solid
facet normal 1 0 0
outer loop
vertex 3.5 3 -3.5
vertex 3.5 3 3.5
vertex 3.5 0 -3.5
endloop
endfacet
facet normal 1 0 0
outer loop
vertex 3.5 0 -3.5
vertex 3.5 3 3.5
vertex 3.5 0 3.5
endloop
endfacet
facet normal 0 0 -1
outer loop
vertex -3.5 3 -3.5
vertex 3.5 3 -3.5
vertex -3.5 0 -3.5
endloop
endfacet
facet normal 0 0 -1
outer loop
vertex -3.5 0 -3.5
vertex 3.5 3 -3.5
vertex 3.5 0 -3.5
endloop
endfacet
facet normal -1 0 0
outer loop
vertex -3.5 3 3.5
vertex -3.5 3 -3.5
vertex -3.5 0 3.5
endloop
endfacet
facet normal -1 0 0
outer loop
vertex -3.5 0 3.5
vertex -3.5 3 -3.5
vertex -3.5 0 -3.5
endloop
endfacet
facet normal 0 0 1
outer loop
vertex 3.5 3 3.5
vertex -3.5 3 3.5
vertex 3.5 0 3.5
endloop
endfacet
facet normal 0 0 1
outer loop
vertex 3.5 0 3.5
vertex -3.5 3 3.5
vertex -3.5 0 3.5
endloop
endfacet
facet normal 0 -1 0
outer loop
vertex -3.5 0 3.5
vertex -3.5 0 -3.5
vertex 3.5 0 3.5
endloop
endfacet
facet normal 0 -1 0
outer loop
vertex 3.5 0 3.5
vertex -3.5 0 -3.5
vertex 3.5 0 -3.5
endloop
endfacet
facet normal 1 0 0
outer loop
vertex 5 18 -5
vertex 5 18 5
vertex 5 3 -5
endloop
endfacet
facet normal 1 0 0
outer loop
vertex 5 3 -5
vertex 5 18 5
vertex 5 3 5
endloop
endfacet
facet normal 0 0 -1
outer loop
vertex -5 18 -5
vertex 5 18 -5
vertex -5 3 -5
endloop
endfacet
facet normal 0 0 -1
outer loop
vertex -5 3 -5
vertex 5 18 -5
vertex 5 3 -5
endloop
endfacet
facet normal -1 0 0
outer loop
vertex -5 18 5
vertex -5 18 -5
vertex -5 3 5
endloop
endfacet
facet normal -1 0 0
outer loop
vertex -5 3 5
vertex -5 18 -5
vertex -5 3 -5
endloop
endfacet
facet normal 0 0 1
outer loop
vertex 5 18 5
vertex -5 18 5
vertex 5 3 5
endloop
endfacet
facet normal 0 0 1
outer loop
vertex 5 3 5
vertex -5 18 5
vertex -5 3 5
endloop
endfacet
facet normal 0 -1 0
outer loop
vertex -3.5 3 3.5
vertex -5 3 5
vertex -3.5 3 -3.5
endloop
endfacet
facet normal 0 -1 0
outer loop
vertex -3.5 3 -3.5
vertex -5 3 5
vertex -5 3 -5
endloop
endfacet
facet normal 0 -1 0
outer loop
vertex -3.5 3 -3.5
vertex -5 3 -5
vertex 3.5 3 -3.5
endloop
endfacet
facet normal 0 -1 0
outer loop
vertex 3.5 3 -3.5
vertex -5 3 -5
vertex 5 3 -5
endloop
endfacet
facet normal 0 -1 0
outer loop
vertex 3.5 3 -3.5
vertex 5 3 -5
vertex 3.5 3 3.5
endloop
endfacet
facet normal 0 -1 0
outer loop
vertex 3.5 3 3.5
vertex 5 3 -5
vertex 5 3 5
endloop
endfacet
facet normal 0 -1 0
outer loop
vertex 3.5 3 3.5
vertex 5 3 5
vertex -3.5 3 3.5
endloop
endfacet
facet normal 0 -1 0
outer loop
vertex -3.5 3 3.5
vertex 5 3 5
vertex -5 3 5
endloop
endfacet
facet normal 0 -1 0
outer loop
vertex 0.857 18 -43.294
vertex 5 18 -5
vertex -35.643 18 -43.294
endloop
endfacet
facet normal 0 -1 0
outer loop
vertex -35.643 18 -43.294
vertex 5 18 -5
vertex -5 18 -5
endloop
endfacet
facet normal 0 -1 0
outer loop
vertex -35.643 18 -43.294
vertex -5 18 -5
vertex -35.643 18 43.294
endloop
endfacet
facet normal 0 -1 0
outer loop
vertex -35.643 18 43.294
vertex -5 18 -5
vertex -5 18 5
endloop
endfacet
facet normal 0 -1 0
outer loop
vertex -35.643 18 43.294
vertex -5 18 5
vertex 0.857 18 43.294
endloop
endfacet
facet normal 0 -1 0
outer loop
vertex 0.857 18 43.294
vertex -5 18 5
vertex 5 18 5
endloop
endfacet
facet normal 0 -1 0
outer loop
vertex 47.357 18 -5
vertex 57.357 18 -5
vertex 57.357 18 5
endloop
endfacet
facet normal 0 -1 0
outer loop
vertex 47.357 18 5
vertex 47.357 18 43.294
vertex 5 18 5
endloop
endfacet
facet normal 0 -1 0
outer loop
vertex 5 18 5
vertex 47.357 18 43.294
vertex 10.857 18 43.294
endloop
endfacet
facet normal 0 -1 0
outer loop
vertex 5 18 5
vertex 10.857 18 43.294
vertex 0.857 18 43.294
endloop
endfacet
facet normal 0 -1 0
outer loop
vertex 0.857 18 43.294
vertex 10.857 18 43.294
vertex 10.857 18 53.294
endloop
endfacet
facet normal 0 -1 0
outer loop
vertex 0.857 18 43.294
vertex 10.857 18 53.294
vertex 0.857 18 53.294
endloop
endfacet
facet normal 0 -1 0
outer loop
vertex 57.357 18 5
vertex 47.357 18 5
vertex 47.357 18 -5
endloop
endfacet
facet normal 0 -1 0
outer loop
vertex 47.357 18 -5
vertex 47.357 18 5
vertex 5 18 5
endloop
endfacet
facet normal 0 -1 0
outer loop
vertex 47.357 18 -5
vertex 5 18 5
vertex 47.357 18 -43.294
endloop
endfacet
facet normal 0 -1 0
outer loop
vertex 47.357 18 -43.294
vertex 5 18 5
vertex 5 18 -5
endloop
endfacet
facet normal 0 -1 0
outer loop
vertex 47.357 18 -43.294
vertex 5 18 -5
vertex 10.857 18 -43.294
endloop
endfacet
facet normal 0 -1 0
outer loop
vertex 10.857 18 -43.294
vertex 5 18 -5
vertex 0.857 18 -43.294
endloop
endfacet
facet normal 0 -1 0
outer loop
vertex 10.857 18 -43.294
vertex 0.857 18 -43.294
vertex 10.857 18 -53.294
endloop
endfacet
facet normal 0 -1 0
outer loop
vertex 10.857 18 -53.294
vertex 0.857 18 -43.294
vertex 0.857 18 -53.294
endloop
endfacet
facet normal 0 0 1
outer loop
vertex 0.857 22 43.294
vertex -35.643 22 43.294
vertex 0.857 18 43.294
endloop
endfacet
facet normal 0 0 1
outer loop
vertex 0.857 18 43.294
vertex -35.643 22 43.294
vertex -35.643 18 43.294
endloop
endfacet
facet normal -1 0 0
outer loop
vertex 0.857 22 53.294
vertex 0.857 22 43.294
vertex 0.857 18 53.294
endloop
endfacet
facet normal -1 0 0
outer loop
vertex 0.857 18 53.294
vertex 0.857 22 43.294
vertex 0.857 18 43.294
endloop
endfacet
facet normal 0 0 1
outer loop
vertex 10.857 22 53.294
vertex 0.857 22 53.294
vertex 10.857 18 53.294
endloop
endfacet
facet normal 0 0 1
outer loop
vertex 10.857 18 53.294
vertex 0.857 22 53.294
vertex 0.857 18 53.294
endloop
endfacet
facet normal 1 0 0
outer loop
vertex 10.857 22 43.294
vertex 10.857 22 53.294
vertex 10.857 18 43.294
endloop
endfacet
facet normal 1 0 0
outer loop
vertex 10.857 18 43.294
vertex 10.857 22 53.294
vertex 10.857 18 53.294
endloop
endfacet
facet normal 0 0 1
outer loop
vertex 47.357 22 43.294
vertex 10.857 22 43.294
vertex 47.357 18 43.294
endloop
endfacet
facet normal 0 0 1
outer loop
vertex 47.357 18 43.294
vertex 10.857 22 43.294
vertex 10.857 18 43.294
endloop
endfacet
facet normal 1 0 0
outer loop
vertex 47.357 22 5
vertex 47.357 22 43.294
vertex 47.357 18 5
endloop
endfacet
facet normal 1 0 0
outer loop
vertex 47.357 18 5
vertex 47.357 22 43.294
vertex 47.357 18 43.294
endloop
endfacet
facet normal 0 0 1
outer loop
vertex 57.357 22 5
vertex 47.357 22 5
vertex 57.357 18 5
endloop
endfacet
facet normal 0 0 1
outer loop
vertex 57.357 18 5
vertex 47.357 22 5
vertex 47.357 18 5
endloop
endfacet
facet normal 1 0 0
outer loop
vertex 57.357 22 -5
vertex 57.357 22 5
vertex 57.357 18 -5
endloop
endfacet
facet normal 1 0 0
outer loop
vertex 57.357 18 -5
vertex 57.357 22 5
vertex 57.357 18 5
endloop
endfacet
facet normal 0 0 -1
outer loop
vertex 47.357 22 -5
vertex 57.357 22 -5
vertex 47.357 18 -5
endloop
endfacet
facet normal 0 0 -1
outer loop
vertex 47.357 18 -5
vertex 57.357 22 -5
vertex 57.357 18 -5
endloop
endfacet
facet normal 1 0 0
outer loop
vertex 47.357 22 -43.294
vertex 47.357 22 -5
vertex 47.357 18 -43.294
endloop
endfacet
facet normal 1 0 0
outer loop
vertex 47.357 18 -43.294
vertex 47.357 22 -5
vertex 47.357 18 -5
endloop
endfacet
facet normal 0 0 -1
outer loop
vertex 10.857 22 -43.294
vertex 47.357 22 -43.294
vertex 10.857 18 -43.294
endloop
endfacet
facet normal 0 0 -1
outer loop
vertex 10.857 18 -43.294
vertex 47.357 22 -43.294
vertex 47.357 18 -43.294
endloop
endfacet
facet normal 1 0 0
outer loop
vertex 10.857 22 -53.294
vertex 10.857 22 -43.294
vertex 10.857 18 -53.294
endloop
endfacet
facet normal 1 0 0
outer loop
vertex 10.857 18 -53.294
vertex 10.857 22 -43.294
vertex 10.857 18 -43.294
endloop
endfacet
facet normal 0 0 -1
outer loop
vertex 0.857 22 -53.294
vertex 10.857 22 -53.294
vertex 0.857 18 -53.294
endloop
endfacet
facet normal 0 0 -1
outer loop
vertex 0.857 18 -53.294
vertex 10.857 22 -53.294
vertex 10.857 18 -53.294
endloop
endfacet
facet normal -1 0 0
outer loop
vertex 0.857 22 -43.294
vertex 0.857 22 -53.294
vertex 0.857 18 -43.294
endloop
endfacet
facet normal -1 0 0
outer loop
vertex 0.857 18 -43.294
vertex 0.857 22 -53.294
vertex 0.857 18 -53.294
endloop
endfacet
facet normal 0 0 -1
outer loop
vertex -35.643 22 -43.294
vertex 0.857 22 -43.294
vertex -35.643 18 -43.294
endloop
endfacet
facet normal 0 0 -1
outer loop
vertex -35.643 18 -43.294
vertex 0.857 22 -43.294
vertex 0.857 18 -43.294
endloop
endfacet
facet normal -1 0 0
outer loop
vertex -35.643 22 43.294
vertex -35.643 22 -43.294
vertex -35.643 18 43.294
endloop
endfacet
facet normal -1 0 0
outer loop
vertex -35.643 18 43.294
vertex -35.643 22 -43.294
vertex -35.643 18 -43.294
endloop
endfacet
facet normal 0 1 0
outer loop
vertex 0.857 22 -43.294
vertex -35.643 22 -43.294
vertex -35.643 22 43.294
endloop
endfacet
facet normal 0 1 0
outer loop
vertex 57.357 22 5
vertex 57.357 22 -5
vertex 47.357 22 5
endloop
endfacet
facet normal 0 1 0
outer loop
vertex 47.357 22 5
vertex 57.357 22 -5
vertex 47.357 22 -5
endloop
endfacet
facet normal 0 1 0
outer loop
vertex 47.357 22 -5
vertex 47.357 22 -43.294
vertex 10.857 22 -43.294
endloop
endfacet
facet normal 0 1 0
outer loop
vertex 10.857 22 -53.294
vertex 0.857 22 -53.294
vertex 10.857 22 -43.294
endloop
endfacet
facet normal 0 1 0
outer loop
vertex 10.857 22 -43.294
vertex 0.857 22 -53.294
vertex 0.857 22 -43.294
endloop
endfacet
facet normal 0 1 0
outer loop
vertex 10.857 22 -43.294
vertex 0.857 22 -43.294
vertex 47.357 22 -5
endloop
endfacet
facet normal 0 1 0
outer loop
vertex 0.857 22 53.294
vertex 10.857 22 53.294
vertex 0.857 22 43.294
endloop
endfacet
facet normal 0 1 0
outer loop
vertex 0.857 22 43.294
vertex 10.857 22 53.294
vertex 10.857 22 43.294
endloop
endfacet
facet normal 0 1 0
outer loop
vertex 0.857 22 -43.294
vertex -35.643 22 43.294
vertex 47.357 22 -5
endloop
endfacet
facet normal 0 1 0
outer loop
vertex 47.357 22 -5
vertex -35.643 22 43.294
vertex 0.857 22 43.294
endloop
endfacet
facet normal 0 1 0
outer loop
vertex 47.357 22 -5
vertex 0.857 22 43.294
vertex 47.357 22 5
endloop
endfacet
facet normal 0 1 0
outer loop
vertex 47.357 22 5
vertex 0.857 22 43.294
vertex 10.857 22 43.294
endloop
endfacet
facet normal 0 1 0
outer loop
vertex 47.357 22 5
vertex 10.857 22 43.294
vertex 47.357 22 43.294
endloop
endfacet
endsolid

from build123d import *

# Parameters (mm, degrees)
SKETCH1_W           = 7
SKETCH1_H           = 7
BOSS_EXTRUDE1_DEPTH = 3
SKETCH3_W           = 10
SKETCH3_H           = 10
BOSS_EXTRUDE2_DEPTH = 15
BOSS_EXTRUDE4_DEPTH = 4


with BuildPart() as part:
    # Sketch1 → Boss-Extrude1 (new body)
    with BuildSketch(Plane(origin=(0, 0, 0), x_dir=(1, 0, 0), z_dir=(0, 1, 0))):
        Rectangle(SKETCH1_W, SKETCH1_H)
    extrude(amount=BOSS_EXTRUDE1_DEPTH)

    # Sketch3 → Boss-Extrude2 (add)
    with BuildSketch(Plane(origin=(0, 3, 0), x_dir=(1, 0, 0), z_dir=(0, 1, 0))):
        Rectangle(SKETCH3_W, SKETCH3_H)
    extrude(amount=BOSS_EXTRUDE2_DEPTH)

    # Sketch4 → Boss-Extrude4 (add)
    with BuildSketch(Plane(origin=(0, 18, 0), x_dir=(1, 0, 0), z_dir=(0, 1, 0))):
        Polygon((10.857439738, 43.294473551), (10.857439738, 53.294473551), (0.857439738, 53.294473551), (0.857439738, 43.294473551), (-35.642560262, 43.294473551), (-35.642560262, -43.294473551), (0.857439738, -43.294473551), (0.857439738, -53.294473551), (10.857439738, -53.294473551), (10.857439738, -43.294473551), (47.357439738, -43.294473551), (47.357439738, -5), (57.357439738, -5), (57.357439738, 5), (47.357439738, 5), (47.357439738, 43.294473551), align=None)
    extrude(amount=BOSS_EXTRUDE4_DEPTH)


solid = part.part
